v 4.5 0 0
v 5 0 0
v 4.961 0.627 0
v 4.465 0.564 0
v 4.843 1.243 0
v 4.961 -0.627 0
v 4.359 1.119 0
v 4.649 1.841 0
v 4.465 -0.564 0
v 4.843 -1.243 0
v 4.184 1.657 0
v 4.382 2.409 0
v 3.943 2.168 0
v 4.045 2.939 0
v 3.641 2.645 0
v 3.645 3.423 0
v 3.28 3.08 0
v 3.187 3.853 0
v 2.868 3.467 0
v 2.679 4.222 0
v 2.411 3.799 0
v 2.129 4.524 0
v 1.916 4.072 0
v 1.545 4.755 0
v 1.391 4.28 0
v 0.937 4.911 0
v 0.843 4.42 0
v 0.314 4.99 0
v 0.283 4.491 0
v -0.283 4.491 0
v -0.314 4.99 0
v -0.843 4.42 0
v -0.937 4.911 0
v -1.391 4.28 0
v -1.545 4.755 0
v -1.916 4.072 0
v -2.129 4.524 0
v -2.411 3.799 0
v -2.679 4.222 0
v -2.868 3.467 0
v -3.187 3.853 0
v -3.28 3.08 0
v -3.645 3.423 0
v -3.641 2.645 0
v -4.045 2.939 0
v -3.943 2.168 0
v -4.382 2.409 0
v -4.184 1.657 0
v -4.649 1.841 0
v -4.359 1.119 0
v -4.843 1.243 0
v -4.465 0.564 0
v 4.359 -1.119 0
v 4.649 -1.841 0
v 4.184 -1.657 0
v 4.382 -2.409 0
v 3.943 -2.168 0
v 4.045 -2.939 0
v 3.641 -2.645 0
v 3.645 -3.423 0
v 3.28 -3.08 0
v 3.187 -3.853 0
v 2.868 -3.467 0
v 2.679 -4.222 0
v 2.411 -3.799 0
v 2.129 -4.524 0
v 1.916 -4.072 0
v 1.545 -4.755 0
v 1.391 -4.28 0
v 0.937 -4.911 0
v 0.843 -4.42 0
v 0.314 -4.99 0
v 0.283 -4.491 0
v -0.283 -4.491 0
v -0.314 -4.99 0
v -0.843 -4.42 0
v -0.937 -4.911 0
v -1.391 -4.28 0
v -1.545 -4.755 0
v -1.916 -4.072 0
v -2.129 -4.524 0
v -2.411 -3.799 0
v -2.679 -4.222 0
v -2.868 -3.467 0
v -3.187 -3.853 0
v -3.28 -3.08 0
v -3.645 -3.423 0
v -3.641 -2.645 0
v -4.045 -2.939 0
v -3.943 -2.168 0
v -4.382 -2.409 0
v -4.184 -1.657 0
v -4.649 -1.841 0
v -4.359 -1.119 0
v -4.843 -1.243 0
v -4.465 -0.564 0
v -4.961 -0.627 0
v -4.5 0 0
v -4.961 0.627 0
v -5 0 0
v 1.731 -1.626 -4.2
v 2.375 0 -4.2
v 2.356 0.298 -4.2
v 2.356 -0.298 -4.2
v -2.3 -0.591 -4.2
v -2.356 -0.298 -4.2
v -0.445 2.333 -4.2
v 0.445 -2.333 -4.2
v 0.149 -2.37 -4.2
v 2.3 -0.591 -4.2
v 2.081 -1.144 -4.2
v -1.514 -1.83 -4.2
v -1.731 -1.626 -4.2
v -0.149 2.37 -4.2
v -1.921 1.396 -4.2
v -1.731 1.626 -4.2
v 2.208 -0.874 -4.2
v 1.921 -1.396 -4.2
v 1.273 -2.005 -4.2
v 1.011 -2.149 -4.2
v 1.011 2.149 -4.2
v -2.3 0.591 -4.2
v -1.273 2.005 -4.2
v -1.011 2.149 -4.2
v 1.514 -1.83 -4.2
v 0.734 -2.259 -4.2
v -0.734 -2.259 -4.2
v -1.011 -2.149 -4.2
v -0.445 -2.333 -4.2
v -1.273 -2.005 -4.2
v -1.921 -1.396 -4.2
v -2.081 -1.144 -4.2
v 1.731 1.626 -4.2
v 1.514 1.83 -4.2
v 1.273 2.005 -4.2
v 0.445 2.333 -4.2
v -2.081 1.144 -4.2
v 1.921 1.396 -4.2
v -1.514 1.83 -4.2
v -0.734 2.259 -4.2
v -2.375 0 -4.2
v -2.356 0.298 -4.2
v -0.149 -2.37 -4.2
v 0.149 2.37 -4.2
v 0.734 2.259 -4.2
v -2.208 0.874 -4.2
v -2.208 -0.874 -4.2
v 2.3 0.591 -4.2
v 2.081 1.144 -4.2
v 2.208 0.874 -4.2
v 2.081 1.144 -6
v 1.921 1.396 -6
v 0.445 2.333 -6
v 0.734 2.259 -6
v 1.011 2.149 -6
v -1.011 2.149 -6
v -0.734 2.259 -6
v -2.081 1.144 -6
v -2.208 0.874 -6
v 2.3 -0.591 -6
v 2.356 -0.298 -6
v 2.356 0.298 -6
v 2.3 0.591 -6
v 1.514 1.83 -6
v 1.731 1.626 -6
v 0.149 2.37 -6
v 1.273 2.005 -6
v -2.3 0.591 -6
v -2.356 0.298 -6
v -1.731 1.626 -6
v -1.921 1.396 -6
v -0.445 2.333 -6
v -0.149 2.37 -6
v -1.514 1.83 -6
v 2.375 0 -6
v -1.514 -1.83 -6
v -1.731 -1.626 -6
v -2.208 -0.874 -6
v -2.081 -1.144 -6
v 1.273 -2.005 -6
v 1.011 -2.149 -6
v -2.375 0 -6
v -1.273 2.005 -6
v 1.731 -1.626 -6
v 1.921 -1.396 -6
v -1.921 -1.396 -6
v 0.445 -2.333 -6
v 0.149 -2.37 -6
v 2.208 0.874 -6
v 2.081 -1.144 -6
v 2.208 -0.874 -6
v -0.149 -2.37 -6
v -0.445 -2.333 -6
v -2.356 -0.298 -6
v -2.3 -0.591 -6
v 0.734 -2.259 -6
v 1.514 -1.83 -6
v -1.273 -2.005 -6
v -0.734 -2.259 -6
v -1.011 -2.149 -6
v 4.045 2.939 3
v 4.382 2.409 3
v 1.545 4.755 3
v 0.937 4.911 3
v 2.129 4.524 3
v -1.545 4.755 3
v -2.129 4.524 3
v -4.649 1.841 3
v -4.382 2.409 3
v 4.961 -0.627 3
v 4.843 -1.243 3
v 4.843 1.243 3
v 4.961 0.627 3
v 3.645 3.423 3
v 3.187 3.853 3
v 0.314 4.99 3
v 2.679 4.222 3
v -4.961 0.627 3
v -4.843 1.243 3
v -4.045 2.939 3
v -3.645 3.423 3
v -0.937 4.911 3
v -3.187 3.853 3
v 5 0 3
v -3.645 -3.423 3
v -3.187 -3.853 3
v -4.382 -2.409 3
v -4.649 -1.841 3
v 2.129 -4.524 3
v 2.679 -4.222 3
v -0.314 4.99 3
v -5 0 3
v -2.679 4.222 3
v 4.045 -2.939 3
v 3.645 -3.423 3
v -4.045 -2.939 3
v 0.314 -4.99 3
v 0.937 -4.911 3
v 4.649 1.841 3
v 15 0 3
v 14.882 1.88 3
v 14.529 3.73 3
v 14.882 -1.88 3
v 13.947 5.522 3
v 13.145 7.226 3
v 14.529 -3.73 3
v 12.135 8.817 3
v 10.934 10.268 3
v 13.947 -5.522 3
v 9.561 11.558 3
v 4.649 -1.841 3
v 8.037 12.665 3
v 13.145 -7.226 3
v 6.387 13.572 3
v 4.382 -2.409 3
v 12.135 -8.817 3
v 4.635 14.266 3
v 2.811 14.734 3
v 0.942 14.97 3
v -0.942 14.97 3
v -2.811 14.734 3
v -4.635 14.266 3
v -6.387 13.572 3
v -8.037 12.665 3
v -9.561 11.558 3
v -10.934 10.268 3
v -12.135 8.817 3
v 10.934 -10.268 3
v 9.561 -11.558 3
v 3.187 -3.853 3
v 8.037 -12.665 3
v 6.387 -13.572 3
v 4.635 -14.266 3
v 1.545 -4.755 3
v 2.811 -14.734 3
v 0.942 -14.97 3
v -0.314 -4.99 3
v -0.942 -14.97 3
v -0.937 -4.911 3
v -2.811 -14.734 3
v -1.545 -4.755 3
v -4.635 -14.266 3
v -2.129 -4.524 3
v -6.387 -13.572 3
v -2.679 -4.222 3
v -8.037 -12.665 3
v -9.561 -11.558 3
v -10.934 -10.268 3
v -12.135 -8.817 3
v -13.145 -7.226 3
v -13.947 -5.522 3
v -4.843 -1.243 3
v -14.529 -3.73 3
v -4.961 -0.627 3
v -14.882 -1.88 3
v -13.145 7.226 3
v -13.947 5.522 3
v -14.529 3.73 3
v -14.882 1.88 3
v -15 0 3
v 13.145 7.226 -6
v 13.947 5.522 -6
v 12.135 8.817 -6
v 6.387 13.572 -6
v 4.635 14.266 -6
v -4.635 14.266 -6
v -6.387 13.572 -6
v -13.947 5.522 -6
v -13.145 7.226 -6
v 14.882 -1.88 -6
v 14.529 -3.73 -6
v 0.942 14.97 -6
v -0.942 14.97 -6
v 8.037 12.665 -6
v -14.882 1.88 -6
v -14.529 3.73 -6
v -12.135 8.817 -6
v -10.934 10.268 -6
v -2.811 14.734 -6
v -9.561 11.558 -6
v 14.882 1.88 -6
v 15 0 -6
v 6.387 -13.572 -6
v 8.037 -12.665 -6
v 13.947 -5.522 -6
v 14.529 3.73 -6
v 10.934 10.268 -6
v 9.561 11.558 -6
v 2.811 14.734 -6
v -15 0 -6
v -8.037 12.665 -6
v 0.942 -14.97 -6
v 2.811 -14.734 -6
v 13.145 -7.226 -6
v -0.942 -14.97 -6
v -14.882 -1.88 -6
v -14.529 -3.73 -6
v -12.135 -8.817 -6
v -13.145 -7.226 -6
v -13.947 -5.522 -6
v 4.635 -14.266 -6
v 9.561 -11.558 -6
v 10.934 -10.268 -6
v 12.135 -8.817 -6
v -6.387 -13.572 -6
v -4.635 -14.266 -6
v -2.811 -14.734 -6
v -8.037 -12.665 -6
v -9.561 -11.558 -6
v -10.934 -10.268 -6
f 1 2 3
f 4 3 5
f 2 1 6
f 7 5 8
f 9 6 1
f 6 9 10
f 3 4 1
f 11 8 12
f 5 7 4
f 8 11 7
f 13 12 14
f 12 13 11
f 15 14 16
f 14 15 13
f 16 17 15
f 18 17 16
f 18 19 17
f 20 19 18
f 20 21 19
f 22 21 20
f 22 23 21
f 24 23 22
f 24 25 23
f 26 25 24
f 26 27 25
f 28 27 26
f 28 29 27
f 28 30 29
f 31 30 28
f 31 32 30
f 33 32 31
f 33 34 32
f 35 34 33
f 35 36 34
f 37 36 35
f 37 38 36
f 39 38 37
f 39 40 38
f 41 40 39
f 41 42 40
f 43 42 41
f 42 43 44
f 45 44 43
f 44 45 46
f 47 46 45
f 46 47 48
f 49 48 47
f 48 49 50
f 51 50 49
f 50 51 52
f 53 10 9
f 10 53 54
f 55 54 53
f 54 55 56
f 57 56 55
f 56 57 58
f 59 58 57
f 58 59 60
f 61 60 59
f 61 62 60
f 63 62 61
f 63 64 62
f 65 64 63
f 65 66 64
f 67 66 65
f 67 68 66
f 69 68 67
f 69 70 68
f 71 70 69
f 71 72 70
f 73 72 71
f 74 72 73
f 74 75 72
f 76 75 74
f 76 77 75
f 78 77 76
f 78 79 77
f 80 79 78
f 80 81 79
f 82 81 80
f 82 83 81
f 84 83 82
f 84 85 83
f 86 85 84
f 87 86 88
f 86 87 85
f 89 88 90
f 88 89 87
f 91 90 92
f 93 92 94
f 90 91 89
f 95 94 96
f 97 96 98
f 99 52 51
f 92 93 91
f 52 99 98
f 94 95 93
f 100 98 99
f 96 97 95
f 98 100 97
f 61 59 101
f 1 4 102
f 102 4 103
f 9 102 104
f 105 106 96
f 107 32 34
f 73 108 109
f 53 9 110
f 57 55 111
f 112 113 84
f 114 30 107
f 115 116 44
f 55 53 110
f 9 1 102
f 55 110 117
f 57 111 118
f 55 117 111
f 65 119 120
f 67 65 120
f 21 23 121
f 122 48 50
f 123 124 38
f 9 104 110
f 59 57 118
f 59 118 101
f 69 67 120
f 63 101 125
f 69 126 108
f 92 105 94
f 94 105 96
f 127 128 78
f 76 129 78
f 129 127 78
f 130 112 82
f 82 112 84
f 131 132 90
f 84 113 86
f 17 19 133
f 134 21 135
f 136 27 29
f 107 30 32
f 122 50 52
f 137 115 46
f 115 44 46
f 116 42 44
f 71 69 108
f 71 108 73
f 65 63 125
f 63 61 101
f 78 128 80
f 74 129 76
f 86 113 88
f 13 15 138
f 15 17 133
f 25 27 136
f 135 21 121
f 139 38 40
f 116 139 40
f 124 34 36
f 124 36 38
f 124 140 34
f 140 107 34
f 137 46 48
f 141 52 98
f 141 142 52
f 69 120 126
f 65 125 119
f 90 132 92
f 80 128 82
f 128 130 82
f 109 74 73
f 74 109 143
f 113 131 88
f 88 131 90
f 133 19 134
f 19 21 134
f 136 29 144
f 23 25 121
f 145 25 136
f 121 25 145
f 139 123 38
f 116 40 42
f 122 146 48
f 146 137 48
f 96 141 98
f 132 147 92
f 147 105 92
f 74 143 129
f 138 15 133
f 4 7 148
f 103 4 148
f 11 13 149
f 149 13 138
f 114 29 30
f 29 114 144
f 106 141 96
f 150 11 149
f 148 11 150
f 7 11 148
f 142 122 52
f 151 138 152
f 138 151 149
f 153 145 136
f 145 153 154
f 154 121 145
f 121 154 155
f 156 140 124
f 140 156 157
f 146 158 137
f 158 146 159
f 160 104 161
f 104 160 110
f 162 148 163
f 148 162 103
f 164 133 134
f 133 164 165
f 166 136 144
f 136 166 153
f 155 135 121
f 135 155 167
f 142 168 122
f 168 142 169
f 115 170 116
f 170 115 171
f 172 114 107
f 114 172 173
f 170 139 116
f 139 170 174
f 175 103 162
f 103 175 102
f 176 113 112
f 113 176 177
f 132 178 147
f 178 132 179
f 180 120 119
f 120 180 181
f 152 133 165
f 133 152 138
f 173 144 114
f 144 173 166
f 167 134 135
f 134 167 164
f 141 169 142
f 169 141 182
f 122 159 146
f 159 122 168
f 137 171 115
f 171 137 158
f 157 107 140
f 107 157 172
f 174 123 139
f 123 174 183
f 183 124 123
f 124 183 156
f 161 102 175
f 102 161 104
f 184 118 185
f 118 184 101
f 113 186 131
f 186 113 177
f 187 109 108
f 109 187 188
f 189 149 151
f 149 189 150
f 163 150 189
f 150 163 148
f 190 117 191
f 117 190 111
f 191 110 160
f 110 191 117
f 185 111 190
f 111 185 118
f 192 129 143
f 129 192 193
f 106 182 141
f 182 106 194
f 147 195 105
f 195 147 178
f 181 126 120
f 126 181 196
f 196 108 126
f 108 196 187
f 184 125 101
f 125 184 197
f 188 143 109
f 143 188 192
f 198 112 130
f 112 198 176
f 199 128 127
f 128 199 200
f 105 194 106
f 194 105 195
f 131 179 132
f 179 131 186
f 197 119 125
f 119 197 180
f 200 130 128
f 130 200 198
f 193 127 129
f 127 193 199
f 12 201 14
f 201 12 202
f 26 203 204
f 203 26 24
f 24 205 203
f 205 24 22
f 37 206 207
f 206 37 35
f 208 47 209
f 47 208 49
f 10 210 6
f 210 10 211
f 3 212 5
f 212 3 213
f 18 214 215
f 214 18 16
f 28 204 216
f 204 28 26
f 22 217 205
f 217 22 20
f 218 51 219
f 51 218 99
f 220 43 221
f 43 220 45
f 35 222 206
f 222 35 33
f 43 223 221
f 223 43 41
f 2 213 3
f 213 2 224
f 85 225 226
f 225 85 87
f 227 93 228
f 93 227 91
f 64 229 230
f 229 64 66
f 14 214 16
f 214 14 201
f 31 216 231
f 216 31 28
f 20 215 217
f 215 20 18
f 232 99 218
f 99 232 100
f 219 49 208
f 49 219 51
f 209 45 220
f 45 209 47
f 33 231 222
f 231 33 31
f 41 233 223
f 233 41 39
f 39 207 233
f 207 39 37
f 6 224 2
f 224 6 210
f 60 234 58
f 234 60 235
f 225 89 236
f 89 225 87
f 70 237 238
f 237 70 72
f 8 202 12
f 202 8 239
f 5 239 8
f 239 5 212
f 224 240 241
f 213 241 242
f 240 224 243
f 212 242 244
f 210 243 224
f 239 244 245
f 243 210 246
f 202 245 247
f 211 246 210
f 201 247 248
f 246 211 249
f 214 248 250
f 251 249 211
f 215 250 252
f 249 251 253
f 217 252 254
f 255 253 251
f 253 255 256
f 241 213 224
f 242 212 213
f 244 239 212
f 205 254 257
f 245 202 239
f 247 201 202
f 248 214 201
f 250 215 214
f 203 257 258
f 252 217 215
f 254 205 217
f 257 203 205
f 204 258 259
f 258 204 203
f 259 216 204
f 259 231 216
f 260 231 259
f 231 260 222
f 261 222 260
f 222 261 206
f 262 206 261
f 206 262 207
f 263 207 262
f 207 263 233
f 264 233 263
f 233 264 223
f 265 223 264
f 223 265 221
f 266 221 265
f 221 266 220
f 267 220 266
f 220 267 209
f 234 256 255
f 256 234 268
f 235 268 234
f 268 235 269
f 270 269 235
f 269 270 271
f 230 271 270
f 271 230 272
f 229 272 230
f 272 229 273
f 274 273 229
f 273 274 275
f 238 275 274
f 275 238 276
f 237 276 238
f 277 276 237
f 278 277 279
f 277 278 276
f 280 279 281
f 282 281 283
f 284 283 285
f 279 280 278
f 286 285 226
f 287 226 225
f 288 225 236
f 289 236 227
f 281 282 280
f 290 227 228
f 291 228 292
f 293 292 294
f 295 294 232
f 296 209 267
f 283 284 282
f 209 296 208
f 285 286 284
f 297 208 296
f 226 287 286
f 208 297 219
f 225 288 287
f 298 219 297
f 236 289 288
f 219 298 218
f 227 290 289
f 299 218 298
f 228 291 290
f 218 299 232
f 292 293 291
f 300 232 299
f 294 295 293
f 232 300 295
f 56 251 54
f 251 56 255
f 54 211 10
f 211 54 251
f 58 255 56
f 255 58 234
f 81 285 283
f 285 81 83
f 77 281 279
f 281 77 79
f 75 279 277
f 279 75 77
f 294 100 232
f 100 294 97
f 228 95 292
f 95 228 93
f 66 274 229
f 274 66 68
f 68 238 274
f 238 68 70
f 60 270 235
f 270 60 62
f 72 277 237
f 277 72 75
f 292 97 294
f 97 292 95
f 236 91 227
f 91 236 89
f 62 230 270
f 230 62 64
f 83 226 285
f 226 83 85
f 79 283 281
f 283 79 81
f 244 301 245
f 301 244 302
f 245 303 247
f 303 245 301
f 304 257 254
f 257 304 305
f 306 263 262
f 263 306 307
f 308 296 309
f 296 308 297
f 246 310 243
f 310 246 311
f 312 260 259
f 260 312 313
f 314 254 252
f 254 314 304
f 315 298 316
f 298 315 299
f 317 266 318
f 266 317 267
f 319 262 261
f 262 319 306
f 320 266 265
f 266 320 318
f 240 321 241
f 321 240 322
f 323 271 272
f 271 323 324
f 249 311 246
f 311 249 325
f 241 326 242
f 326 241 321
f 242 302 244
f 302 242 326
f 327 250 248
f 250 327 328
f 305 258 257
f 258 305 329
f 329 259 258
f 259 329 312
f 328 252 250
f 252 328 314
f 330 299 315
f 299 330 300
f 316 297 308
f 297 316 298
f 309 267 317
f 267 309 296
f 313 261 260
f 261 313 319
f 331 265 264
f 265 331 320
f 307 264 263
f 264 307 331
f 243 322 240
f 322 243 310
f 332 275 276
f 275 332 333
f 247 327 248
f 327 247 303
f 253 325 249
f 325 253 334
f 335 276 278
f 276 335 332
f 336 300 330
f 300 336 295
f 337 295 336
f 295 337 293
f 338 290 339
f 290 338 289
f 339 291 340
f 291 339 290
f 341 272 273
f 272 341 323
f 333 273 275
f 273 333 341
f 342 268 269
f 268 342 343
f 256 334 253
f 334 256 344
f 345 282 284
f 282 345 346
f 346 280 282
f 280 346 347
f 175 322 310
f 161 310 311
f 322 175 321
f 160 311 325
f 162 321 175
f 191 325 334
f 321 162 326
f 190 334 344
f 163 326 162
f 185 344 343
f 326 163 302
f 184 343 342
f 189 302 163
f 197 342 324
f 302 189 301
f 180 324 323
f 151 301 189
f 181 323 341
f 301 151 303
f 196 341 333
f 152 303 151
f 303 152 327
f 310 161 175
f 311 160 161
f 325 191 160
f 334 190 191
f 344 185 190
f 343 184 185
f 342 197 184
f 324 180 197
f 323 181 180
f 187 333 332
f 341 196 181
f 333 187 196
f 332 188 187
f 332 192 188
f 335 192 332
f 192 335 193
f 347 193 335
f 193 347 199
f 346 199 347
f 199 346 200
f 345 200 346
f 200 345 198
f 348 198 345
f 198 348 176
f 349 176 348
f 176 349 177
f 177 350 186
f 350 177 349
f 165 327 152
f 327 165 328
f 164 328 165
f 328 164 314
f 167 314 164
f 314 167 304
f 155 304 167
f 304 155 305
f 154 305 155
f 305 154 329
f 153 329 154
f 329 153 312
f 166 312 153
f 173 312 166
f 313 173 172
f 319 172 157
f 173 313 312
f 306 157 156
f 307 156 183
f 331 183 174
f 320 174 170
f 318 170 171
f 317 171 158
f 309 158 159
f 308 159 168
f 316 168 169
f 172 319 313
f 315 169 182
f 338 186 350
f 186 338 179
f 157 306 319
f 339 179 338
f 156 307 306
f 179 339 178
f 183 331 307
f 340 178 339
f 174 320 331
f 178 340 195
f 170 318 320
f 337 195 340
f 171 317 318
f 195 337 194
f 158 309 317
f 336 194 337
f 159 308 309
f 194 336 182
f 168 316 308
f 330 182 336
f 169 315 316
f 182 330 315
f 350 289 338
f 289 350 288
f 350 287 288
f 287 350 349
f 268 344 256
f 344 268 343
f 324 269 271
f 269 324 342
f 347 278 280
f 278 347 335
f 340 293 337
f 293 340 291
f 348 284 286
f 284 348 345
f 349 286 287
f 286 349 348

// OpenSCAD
$fn = 50;

difference() {
	union() {
		translate(v = [0, 0, -6.0]) {
			cylinder(h = 9, r = 15.0);
		}
	}
	union() {
		translate(v = [0, 0, 0]) {
			rotate(a = [0, 0, 0]) {
				difference() {
					union() {
						translate(v = [0, 0, -9.0]) {
							cylinder(h = 9, r = 2.25);
						}
						translate(v = [0, 0, -4.2]) {
							cylinder(h = 4.2, r1 = 2.375, r2 = 4.5);
						}
						translate(v = [0, 0, -9.0]) {
							cylinder(h = 9, r = 2.375);
						}
						translate(v = [0, 0, -9.0]) {
							cylinder(h = 9, r = 2.25);
						}
					}
					union();
				}
			}
		}
		#cylinder(h = 3, r = 5.0);
	}
}
